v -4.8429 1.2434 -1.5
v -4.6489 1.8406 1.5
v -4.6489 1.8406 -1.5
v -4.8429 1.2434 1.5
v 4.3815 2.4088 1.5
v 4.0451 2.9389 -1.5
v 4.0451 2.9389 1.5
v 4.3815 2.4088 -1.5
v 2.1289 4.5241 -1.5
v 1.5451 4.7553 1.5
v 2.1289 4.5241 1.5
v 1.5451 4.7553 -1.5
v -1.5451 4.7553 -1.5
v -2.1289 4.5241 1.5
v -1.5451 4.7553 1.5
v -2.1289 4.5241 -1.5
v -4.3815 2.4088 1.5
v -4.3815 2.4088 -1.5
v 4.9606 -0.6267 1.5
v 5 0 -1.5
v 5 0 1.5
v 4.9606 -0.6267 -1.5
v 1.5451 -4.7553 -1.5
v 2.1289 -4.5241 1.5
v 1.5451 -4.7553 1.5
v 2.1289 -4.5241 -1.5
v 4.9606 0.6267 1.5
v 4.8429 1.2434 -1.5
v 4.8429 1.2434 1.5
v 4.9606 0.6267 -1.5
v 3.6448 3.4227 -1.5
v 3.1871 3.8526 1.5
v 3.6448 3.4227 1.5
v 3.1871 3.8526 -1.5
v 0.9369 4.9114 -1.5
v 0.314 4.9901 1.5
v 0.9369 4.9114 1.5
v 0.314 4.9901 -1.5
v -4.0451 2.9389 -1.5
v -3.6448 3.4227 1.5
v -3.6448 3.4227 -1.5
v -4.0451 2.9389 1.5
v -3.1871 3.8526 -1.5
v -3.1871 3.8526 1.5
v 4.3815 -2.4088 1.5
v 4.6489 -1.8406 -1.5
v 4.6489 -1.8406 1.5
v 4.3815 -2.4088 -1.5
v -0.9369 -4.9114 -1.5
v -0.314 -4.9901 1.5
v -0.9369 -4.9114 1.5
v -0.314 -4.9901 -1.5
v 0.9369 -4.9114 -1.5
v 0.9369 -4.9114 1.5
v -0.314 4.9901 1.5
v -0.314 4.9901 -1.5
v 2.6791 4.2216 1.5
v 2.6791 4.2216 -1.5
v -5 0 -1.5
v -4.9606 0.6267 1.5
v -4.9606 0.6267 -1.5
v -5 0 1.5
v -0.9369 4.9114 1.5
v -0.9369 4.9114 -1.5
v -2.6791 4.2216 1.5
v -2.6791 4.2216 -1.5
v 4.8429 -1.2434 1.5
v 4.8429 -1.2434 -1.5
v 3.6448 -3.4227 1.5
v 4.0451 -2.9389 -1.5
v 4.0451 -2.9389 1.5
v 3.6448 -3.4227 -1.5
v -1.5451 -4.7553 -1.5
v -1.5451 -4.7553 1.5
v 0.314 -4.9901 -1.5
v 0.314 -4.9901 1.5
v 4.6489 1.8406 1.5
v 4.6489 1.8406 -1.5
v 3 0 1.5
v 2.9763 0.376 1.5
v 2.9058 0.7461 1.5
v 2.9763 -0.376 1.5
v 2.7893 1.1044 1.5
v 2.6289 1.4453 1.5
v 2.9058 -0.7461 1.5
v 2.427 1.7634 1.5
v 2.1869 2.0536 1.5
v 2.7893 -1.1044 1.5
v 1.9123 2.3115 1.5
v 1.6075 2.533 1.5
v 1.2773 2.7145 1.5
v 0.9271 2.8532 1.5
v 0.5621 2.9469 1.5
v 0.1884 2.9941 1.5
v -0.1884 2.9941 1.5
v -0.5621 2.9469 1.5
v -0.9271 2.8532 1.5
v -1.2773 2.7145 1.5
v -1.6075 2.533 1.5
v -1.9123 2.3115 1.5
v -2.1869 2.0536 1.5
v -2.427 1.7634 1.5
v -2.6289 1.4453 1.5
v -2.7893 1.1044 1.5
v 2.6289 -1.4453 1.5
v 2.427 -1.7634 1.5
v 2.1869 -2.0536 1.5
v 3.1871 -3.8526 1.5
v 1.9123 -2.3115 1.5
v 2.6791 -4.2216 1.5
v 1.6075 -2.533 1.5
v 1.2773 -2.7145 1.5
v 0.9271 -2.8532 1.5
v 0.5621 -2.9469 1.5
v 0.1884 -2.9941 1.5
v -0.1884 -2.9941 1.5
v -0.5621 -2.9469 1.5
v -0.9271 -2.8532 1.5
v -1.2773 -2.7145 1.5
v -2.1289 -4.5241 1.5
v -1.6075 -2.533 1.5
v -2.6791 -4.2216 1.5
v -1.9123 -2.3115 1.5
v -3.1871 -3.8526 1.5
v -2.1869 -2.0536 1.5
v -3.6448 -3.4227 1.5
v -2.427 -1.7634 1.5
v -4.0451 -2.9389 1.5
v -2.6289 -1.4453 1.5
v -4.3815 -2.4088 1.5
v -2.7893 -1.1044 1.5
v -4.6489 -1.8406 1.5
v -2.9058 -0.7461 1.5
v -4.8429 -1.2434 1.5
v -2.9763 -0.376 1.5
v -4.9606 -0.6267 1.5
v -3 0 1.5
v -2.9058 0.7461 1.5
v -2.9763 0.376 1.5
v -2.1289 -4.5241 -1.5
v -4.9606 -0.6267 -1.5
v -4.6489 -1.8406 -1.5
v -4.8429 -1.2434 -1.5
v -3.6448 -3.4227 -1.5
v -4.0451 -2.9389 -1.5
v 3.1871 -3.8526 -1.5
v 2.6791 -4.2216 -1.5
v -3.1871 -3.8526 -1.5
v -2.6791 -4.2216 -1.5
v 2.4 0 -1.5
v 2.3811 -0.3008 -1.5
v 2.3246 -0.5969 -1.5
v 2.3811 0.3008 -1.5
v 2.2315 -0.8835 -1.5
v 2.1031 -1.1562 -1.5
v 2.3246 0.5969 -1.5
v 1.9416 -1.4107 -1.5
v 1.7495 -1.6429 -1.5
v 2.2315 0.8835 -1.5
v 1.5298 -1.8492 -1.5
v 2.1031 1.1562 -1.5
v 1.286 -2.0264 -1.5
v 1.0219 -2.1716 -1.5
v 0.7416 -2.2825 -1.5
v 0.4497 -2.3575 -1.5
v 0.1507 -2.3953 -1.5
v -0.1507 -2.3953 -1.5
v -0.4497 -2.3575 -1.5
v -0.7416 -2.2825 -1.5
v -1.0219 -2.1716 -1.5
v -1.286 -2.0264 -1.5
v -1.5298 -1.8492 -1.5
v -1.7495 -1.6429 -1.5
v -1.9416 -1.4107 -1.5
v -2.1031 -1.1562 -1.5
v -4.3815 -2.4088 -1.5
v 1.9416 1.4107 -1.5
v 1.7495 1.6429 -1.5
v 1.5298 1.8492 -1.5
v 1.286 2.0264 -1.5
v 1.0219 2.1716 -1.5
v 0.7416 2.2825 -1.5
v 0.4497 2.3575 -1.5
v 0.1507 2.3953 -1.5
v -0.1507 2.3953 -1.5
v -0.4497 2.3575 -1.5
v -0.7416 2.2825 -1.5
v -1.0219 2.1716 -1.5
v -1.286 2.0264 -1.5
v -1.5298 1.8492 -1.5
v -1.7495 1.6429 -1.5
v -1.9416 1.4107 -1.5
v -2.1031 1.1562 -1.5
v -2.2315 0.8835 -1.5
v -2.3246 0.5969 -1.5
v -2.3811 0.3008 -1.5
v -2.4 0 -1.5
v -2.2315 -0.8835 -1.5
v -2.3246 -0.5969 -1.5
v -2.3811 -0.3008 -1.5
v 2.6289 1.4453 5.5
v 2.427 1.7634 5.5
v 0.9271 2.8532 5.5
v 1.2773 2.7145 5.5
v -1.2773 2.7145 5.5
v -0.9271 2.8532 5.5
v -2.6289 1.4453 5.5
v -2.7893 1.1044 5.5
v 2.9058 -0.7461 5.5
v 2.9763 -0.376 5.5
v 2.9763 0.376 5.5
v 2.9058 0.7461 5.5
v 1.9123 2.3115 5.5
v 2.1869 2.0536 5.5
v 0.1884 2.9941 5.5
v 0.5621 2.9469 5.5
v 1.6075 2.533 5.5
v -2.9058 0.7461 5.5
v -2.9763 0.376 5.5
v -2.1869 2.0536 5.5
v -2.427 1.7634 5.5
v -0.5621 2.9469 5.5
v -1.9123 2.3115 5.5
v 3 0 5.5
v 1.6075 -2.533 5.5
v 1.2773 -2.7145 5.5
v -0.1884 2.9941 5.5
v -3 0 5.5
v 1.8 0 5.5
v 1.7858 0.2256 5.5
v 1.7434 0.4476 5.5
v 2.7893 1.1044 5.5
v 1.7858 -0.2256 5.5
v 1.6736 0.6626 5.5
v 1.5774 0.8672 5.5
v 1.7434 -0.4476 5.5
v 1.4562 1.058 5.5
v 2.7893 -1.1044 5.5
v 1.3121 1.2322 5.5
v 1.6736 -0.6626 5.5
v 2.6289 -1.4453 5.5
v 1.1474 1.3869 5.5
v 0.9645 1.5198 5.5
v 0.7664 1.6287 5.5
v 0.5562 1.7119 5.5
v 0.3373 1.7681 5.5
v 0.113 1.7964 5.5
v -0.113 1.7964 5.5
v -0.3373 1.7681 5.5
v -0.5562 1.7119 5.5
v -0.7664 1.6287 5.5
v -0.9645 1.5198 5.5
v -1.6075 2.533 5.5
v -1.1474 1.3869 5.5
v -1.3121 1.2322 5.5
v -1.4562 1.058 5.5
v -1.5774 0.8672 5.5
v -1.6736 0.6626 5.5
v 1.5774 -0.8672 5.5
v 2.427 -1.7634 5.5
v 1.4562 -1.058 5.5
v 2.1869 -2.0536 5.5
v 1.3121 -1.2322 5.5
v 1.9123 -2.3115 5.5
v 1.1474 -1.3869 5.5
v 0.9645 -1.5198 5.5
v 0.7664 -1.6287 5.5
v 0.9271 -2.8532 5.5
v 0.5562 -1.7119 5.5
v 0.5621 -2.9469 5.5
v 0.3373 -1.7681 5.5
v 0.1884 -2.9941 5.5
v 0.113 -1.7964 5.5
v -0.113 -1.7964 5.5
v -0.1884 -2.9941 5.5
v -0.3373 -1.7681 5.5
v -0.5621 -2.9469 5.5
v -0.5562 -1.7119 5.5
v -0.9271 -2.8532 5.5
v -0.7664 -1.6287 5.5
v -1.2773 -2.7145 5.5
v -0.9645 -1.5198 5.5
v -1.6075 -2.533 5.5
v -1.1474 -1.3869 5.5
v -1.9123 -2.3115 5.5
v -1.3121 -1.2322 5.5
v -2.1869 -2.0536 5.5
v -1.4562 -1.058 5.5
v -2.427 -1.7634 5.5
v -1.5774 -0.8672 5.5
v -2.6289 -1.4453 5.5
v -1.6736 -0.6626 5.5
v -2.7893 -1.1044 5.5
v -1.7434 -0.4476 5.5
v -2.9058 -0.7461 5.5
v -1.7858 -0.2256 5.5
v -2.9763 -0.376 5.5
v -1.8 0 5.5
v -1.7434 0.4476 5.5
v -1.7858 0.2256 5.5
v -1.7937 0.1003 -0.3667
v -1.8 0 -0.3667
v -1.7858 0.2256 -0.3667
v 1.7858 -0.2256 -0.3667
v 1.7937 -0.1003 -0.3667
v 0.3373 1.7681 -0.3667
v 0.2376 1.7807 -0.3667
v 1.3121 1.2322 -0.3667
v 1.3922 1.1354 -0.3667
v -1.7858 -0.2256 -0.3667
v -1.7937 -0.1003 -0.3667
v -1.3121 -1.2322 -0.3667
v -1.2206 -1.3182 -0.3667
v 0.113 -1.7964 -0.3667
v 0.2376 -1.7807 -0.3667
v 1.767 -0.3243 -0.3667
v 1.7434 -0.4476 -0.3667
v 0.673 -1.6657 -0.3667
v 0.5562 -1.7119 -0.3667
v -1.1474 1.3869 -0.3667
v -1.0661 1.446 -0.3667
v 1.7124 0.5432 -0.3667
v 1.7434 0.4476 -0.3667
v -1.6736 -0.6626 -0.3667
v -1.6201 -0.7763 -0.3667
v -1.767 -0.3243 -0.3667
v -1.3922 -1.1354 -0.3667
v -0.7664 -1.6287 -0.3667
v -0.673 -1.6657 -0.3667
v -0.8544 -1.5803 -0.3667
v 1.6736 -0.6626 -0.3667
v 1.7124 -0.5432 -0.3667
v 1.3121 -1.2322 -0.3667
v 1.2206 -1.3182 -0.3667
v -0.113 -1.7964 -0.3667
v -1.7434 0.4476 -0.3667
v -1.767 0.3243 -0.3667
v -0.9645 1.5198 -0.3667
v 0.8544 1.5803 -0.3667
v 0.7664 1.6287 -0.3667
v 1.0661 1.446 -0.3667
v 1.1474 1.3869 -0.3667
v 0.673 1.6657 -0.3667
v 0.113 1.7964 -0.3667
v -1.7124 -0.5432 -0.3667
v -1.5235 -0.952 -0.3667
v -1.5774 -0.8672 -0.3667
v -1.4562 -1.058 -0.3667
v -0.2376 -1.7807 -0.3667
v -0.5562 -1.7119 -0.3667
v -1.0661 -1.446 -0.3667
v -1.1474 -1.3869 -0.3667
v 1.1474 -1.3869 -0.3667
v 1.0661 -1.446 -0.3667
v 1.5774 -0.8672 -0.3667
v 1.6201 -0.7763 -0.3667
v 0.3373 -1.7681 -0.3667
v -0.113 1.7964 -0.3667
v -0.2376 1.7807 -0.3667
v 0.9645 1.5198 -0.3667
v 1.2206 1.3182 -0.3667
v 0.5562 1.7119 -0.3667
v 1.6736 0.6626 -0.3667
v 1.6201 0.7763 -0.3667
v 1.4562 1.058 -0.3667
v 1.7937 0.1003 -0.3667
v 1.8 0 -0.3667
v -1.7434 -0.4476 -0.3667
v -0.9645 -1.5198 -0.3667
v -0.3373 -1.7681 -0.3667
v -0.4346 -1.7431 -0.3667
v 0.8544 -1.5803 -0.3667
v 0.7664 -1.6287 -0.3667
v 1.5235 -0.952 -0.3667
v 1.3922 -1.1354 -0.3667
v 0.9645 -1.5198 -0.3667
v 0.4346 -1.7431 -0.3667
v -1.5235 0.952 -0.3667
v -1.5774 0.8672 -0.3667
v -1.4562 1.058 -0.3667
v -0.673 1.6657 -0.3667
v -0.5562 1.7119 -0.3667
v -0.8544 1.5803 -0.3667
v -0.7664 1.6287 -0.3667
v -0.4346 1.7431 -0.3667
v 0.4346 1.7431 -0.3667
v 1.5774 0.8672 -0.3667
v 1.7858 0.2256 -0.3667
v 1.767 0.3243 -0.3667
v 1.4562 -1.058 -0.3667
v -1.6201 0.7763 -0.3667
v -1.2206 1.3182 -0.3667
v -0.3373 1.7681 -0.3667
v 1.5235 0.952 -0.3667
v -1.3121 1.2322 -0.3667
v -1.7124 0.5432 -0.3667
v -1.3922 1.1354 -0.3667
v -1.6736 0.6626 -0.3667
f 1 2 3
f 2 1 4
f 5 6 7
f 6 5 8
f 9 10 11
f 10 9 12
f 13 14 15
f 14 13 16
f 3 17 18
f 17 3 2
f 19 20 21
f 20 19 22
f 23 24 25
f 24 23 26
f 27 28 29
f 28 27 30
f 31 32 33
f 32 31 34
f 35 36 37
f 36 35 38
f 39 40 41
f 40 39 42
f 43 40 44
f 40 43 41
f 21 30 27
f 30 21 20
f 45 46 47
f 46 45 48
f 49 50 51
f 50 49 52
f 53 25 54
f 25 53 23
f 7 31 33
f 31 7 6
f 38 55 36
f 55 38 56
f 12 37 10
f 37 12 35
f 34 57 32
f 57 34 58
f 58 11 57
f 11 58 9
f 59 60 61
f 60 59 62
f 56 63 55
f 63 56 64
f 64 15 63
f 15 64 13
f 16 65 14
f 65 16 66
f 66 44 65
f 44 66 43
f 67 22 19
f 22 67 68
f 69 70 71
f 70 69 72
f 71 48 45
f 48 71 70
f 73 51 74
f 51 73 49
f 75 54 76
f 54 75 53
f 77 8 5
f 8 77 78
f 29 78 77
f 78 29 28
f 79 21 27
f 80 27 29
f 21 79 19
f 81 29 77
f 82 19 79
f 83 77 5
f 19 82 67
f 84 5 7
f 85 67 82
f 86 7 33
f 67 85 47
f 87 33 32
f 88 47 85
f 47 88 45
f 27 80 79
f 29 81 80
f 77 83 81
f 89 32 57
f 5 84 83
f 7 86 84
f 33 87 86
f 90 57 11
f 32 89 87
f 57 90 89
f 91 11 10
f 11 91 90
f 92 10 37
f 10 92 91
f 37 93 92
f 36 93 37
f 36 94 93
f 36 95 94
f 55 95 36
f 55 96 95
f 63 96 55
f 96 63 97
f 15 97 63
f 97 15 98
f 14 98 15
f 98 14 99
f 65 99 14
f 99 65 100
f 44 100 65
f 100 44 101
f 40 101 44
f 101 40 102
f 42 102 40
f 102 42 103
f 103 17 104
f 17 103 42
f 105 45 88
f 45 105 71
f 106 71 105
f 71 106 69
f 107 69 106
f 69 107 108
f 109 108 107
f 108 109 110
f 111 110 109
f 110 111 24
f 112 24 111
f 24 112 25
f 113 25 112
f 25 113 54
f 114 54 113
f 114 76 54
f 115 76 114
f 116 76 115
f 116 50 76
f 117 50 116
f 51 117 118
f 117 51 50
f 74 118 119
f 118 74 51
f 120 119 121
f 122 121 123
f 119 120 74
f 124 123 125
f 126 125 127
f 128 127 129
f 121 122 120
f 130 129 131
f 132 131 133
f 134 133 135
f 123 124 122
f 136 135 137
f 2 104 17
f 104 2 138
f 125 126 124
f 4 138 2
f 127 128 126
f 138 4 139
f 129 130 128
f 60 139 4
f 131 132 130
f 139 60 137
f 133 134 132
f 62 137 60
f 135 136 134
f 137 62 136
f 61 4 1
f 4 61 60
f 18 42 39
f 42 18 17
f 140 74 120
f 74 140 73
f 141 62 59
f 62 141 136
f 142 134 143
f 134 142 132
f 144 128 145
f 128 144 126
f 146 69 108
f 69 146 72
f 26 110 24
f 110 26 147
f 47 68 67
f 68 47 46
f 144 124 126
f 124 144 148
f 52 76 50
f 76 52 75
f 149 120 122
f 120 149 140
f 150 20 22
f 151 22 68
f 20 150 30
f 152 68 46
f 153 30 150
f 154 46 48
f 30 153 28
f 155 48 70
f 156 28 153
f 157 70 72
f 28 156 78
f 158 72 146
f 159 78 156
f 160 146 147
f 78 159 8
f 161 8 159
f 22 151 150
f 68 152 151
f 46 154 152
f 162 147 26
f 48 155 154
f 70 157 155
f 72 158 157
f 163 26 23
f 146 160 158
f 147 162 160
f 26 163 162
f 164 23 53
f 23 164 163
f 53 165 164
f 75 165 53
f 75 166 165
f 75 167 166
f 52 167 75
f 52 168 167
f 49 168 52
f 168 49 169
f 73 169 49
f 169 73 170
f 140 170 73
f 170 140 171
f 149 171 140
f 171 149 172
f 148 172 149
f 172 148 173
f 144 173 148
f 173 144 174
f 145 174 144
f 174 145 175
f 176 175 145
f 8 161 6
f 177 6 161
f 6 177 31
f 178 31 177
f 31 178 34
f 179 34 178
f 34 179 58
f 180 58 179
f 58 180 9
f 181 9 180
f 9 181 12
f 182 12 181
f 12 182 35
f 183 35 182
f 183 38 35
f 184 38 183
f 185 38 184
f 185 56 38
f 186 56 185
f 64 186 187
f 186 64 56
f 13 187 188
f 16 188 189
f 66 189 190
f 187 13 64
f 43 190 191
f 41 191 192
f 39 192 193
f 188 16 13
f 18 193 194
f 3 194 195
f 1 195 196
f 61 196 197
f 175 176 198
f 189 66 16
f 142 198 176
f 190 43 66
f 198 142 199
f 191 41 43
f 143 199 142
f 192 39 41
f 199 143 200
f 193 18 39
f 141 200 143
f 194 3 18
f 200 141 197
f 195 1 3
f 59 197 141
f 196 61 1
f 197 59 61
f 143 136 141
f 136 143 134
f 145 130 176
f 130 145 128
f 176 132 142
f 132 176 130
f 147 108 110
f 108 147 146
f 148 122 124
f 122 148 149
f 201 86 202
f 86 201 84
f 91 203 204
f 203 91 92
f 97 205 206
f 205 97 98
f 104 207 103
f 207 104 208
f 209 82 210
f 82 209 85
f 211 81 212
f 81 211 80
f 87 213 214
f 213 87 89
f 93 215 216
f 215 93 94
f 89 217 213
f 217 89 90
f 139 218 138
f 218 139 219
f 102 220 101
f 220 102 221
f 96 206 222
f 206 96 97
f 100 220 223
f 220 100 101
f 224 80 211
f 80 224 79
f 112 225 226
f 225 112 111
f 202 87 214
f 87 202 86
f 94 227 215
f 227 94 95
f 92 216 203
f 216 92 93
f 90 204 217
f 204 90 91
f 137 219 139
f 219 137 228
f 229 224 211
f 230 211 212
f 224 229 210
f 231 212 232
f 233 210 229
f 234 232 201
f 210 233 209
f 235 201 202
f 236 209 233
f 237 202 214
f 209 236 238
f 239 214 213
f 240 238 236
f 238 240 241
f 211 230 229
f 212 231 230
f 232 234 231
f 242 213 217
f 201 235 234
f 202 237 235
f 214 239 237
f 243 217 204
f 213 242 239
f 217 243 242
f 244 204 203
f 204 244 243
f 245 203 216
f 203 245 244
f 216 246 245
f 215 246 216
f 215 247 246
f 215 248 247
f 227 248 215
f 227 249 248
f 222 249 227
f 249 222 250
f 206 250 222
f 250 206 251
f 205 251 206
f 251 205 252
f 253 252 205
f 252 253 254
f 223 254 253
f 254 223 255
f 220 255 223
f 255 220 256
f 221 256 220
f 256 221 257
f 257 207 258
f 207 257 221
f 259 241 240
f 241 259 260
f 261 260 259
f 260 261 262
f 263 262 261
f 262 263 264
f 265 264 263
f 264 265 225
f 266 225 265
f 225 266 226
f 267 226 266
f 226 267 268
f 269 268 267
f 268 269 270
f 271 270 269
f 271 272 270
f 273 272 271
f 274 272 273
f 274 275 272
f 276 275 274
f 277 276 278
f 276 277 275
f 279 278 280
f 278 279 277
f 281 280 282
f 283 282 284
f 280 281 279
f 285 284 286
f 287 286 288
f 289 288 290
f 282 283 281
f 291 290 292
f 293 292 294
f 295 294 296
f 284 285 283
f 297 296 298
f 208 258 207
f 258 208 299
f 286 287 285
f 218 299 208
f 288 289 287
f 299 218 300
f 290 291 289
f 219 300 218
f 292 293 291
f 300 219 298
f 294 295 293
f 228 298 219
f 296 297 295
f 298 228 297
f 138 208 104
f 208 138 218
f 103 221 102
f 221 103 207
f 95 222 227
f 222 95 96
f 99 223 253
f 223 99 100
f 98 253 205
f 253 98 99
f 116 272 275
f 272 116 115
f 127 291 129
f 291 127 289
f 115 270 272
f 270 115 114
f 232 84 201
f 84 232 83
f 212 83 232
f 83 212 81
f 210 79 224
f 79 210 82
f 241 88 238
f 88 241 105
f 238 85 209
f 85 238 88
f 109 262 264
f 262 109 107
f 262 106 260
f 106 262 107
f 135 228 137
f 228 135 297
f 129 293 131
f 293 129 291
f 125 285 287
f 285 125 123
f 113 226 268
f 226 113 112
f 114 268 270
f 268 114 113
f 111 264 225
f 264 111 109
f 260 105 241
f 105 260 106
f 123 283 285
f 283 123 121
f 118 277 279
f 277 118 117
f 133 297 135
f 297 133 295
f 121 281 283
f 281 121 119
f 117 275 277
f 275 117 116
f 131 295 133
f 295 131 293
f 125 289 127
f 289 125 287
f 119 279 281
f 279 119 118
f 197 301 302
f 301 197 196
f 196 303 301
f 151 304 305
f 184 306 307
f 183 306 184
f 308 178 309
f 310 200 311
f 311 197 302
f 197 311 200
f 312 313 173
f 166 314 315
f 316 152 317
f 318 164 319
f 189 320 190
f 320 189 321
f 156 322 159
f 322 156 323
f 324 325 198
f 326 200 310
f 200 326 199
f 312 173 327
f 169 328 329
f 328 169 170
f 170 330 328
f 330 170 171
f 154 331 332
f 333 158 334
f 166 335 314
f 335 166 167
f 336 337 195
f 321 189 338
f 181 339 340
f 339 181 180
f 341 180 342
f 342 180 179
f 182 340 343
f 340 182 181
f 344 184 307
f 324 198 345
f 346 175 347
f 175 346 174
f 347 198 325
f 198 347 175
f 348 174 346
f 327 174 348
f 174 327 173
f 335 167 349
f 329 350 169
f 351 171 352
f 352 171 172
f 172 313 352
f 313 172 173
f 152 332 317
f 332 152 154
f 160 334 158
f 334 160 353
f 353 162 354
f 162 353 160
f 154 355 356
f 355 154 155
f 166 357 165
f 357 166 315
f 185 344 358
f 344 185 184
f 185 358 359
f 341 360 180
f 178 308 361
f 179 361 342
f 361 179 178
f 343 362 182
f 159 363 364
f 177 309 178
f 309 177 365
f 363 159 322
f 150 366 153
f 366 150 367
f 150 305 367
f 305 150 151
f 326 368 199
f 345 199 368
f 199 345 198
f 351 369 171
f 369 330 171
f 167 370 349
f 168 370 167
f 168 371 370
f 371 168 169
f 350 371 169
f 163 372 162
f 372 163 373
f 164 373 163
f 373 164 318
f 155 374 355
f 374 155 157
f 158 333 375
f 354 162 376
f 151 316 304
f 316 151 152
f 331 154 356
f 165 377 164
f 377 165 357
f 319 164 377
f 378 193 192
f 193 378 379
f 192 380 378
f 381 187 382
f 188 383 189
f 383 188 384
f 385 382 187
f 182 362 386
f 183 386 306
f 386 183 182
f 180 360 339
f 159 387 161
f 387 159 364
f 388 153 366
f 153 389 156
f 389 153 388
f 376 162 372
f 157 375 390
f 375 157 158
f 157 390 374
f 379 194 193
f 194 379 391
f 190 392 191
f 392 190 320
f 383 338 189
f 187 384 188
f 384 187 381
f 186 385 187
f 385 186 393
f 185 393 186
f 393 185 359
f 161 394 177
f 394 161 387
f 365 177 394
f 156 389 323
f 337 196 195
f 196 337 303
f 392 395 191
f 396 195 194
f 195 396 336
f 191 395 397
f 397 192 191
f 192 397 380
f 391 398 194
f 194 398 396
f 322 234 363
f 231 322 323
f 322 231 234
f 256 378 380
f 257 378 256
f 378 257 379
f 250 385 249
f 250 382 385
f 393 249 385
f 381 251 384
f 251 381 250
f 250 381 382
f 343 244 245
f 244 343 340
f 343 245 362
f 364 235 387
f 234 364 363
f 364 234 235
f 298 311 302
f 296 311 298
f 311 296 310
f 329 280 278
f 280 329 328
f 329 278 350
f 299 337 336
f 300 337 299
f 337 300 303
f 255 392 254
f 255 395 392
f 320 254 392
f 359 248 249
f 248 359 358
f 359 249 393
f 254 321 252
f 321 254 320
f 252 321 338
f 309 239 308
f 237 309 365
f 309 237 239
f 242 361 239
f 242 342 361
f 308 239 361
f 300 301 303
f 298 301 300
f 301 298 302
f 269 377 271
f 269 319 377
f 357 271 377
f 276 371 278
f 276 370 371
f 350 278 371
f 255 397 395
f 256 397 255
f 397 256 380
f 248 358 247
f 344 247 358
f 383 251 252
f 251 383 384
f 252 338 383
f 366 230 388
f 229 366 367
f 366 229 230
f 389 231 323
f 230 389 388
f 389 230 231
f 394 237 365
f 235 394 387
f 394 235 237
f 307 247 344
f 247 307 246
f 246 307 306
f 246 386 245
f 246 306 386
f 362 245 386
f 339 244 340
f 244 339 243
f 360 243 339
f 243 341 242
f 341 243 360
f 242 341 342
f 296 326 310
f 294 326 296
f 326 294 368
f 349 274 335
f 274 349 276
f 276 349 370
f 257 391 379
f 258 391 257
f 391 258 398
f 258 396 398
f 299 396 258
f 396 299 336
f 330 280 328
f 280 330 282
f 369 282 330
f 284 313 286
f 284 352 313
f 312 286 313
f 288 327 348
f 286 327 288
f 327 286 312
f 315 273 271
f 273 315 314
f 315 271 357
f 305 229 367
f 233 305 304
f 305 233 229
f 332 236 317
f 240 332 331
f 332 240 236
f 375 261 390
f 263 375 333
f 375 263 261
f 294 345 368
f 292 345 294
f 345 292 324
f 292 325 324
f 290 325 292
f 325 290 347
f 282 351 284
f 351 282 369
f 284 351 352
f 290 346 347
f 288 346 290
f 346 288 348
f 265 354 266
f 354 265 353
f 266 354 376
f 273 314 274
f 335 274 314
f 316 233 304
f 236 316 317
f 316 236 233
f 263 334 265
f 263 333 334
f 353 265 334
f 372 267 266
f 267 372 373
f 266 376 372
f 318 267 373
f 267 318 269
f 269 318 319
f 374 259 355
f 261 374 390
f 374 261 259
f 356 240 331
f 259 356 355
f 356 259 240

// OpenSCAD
$fn = 50;


difference() {
	union() {
		translate(v = [0, 0, -1.5000000000]) {
			cylinder(h = 3, r = 5.0000000000);
		}
		translate(v = [0, 0, -1.5000000000]) {
			cylinder(h = 7, r = 3.0000000000);
		}
	}
	union() {
		translate(v = [0, 0, -1.5000000000]) {
			rotate(a = [0, 180, 0]) {
				difference() {
					union() {
						translate(v = [0, 0, -1.7000000000]) {
							cylinder(h = 1.7000000000, r1 = 1.5000000000, r2 = 2.4000000000);
						}
						translate(v = [0, 0, -7.0000000000]) {
							cylinder(h = 7, r = 1.5000000000);
						}
						translate(v = [0, 0, -7.0000000000]) {
							cylinder(h = 7, r = 1.8000000000);
						}
						translate(v = [0, 0, -7.0000000000]) {
							cylinder(h = 7, r = 1.5000000000);
						}
					}
					union();
				}
			}
		}
		translate(v = [0, 0, -100.0000000000]) {
			cylinder(h = 200, r = 1.5000000000);
		}
	}
}
